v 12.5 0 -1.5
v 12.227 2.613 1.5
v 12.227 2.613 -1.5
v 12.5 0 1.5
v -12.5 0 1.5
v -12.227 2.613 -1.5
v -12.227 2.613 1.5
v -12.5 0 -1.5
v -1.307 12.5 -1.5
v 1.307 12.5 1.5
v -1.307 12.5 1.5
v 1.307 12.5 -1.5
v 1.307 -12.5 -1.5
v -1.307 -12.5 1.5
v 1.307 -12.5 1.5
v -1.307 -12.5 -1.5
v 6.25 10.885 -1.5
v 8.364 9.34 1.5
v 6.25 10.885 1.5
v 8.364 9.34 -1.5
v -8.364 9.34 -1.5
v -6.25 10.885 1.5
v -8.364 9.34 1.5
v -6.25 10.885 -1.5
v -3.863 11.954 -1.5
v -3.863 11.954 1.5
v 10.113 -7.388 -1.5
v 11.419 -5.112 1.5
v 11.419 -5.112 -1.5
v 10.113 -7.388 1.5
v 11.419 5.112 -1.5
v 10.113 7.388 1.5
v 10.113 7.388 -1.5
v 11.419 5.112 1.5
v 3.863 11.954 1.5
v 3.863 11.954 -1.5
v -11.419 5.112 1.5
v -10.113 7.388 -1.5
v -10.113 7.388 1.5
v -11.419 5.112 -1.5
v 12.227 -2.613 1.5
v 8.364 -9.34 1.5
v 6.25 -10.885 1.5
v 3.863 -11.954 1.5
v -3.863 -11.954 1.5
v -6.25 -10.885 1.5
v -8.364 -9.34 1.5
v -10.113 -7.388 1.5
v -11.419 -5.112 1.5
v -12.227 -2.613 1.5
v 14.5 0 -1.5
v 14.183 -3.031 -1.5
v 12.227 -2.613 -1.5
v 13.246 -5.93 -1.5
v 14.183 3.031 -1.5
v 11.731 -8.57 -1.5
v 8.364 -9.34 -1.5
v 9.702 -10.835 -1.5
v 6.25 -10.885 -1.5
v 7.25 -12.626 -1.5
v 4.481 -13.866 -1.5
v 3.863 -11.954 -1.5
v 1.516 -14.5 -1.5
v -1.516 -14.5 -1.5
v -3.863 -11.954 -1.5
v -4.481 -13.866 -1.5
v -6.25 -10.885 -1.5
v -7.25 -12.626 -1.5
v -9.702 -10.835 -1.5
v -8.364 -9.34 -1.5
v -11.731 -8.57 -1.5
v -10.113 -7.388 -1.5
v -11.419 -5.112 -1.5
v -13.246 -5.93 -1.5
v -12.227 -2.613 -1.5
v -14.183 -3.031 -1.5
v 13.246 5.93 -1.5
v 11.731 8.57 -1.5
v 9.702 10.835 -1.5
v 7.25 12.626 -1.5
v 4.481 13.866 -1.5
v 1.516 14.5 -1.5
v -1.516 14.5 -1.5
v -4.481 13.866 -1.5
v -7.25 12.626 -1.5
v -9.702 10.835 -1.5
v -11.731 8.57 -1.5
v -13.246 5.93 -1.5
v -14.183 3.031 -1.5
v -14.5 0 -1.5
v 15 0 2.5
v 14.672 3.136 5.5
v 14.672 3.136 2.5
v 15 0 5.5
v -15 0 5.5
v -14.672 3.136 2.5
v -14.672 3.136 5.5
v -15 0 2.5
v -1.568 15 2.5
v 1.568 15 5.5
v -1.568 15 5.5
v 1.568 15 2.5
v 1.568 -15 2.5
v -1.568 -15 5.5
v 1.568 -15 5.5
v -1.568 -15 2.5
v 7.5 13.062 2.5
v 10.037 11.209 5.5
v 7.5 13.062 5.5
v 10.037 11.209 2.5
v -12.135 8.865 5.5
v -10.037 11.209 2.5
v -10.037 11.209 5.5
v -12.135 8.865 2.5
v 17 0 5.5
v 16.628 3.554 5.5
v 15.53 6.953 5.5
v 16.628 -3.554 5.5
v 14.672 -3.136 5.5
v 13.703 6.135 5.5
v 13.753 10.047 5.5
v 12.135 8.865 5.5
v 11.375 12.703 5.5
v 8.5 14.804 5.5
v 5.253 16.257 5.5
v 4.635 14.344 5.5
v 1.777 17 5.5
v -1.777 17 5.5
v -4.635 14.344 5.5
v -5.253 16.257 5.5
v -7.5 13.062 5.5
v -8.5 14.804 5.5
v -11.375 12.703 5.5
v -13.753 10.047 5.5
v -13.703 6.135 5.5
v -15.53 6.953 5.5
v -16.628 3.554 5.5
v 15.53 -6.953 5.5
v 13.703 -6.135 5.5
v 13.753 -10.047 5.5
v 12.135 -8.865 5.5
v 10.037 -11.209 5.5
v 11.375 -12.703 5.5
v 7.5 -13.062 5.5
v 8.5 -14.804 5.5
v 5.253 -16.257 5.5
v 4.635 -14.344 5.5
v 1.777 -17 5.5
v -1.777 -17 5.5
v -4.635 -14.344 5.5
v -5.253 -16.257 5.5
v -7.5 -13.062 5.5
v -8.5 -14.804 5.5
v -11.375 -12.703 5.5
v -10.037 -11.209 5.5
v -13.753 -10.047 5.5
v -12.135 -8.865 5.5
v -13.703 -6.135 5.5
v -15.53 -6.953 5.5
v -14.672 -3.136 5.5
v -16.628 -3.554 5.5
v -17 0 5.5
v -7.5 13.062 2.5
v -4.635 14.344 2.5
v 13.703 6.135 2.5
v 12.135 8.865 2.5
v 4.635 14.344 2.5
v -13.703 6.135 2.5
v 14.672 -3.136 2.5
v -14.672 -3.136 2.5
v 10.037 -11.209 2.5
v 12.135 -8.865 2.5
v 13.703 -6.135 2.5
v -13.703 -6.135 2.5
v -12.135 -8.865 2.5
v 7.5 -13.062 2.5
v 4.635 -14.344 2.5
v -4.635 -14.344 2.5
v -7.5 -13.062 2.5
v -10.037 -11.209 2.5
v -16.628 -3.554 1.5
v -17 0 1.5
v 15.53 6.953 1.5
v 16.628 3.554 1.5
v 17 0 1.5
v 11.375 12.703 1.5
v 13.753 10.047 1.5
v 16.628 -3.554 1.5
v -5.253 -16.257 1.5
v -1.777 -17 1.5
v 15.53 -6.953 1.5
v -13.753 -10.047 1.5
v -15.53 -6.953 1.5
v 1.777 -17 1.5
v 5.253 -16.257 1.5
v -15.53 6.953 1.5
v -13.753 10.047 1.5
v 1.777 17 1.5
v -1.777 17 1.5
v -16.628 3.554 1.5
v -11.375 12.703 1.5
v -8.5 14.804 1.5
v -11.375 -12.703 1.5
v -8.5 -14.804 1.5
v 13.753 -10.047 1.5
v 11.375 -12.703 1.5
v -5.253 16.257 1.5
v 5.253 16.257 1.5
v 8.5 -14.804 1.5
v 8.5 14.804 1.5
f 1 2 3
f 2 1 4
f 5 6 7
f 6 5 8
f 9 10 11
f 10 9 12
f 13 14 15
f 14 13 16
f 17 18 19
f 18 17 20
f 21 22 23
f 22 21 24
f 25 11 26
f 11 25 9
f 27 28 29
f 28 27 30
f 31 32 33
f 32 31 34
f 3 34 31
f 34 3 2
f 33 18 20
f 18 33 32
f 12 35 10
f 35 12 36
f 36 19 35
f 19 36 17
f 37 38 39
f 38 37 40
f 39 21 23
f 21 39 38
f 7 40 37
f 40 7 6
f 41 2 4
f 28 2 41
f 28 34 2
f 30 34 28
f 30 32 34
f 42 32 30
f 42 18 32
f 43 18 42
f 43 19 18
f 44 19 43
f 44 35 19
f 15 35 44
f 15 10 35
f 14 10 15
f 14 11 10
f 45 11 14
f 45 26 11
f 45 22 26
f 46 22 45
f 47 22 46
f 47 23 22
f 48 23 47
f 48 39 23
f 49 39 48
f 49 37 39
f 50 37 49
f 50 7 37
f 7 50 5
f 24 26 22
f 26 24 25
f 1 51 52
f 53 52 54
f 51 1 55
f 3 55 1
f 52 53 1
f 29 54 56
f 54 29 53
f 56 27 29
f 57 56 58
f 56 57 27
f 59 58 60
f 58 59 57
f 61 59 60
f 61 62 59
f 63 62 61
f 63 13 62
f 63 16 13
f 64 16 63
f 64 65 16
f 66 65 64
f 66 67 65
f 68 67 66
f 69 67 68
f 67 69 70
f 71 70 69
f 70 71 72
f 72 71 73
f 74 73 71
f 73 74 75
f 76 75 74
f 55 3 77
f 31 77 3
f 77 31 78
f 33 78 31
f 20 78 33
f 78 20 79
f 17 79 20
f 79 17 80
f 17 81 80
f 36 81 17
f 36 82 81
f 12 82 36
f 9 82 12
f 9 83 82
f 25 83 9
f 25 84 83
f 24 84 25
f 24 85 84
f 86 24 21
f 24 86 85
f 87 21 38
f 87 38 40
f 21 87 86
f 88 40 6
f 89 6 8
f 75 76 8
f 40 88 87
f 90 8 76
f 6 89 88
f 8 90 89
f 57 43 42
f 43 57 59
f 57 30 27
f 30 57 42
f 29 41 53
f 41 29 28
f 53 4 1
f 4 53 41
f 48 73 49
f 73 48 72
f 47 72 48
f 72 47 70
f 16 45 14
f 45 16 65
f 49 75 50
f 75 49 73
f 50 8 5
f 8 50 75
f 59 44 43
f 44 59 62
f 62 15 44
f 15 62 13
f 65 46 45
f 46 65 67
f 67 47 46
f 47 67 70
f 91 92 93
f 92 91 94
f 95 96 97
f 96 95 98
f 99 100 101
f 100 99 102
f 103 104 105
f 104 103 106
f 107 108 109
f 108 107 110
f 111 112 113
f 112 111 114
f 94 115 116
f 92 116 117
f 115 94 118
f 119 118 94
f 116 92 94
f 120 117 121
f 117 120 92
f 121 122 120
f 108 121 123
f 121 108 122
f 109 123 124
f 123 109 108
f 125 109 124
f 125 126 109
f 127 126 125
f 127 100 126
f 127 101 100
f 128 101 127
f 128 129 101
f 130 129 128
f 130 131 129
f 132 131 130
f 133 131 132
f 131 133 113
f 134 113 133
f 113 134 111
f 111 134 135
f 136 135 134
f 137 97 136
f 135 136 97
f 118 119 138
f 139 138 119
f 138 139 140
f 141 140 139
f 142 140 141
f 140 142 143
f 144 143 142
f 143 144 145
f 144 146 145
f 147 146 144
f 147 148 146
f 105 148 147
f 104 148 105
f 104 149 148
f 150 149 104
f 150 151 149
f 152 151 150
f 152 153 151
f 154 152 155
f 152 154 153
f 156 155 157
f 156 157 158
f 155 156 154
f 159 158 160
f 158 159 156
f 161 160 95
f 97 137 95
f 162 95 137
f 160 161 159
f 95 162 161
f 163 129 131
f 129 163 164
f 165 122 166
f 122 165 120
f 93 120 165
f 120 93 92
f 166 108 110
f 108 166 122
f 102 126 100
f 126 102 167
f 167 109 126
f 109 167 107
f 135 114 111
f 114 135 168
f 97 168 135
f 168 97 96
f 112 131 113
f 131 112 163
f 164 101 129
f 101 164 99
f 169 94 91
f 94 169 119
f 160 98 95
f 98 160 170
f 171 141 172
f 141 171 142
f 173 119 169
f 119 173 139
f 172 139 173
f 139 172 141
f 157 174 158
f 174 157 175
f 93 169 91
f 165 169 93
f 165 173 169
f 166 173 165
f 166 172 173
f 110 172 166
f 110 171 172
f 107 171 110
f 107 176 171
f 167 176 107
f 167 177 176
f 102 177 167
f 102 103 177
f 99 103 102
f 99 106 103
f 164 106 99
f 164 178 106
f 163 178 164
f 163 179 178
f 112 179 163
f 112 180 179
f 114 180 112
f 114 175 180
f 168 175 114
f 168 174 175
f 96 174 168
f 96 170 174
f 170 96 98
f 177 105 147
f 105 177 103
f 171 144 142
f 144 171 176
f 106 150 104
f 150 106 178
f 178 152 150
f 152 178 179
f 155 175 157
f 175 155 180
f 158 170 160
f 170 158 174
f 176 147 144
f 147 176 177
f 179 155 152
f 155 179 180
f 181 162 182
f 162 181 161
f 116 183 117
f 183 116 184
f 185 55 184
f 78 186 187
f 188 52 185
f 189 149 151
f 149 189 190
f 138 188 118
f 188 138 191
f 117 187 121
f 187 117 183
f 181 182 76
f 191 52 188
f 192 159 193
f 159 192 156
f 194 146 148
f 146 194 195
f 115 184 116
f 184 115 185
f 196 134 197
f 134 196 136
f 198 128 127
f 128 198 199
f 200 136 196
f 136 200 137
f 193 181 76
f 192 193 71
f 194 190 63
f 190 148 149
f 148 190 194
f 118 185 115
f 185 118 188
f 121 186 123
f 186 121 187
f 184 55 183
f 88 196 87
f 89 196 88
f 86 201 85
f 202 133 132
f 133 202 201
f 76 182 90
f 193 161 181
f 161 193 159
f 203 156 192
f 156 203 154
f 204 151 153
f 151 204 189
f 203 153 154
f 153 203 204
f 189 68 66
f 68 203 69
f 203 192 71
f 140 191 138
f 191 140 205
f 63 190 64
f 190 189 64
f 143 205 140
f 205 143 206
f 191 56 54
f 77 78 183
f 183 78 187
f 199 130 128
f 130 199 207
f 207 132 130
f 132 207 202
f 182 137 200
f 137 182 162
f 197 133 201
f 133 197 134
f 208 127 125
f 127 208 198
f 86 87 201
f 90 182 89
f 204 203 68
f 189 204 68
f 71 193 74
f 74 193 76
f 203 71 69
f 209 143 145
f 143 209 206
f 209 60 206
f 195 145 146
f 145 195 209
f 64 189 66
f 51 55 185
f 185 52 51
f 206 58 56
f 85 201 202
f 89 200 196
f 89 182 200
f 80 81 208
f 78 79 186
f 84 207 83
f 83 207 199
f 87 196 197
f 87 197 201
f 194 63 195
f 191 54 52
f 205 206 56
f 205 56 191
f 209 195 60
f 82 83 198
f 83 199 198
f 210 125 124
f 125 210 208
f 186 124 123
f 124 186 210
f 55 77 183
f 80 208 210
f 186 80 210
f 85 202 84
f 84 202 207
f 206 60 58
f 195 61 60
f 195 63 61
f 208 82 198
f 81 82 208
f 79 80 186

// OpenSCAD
include <../../lib/relativity.scad/relativity.scad>

d1 = 25;
d2 = 30;
dd = 4;
h1 = 3;
h2 = 3;
hm = 1;

$fn = 30;

differed("hole")
hulled("hull")
rod(d=d1+dd, h=h1, $class="hull") {
  rod(d=d1, h=h1, $class="hole");
  align(z)
    rod(d=d2+dd, h=hm+h2, anchor=-z, $class="hull")
      align(z)
        rod(d=d2, h=h2, anchor=z, $class="hole");
}
